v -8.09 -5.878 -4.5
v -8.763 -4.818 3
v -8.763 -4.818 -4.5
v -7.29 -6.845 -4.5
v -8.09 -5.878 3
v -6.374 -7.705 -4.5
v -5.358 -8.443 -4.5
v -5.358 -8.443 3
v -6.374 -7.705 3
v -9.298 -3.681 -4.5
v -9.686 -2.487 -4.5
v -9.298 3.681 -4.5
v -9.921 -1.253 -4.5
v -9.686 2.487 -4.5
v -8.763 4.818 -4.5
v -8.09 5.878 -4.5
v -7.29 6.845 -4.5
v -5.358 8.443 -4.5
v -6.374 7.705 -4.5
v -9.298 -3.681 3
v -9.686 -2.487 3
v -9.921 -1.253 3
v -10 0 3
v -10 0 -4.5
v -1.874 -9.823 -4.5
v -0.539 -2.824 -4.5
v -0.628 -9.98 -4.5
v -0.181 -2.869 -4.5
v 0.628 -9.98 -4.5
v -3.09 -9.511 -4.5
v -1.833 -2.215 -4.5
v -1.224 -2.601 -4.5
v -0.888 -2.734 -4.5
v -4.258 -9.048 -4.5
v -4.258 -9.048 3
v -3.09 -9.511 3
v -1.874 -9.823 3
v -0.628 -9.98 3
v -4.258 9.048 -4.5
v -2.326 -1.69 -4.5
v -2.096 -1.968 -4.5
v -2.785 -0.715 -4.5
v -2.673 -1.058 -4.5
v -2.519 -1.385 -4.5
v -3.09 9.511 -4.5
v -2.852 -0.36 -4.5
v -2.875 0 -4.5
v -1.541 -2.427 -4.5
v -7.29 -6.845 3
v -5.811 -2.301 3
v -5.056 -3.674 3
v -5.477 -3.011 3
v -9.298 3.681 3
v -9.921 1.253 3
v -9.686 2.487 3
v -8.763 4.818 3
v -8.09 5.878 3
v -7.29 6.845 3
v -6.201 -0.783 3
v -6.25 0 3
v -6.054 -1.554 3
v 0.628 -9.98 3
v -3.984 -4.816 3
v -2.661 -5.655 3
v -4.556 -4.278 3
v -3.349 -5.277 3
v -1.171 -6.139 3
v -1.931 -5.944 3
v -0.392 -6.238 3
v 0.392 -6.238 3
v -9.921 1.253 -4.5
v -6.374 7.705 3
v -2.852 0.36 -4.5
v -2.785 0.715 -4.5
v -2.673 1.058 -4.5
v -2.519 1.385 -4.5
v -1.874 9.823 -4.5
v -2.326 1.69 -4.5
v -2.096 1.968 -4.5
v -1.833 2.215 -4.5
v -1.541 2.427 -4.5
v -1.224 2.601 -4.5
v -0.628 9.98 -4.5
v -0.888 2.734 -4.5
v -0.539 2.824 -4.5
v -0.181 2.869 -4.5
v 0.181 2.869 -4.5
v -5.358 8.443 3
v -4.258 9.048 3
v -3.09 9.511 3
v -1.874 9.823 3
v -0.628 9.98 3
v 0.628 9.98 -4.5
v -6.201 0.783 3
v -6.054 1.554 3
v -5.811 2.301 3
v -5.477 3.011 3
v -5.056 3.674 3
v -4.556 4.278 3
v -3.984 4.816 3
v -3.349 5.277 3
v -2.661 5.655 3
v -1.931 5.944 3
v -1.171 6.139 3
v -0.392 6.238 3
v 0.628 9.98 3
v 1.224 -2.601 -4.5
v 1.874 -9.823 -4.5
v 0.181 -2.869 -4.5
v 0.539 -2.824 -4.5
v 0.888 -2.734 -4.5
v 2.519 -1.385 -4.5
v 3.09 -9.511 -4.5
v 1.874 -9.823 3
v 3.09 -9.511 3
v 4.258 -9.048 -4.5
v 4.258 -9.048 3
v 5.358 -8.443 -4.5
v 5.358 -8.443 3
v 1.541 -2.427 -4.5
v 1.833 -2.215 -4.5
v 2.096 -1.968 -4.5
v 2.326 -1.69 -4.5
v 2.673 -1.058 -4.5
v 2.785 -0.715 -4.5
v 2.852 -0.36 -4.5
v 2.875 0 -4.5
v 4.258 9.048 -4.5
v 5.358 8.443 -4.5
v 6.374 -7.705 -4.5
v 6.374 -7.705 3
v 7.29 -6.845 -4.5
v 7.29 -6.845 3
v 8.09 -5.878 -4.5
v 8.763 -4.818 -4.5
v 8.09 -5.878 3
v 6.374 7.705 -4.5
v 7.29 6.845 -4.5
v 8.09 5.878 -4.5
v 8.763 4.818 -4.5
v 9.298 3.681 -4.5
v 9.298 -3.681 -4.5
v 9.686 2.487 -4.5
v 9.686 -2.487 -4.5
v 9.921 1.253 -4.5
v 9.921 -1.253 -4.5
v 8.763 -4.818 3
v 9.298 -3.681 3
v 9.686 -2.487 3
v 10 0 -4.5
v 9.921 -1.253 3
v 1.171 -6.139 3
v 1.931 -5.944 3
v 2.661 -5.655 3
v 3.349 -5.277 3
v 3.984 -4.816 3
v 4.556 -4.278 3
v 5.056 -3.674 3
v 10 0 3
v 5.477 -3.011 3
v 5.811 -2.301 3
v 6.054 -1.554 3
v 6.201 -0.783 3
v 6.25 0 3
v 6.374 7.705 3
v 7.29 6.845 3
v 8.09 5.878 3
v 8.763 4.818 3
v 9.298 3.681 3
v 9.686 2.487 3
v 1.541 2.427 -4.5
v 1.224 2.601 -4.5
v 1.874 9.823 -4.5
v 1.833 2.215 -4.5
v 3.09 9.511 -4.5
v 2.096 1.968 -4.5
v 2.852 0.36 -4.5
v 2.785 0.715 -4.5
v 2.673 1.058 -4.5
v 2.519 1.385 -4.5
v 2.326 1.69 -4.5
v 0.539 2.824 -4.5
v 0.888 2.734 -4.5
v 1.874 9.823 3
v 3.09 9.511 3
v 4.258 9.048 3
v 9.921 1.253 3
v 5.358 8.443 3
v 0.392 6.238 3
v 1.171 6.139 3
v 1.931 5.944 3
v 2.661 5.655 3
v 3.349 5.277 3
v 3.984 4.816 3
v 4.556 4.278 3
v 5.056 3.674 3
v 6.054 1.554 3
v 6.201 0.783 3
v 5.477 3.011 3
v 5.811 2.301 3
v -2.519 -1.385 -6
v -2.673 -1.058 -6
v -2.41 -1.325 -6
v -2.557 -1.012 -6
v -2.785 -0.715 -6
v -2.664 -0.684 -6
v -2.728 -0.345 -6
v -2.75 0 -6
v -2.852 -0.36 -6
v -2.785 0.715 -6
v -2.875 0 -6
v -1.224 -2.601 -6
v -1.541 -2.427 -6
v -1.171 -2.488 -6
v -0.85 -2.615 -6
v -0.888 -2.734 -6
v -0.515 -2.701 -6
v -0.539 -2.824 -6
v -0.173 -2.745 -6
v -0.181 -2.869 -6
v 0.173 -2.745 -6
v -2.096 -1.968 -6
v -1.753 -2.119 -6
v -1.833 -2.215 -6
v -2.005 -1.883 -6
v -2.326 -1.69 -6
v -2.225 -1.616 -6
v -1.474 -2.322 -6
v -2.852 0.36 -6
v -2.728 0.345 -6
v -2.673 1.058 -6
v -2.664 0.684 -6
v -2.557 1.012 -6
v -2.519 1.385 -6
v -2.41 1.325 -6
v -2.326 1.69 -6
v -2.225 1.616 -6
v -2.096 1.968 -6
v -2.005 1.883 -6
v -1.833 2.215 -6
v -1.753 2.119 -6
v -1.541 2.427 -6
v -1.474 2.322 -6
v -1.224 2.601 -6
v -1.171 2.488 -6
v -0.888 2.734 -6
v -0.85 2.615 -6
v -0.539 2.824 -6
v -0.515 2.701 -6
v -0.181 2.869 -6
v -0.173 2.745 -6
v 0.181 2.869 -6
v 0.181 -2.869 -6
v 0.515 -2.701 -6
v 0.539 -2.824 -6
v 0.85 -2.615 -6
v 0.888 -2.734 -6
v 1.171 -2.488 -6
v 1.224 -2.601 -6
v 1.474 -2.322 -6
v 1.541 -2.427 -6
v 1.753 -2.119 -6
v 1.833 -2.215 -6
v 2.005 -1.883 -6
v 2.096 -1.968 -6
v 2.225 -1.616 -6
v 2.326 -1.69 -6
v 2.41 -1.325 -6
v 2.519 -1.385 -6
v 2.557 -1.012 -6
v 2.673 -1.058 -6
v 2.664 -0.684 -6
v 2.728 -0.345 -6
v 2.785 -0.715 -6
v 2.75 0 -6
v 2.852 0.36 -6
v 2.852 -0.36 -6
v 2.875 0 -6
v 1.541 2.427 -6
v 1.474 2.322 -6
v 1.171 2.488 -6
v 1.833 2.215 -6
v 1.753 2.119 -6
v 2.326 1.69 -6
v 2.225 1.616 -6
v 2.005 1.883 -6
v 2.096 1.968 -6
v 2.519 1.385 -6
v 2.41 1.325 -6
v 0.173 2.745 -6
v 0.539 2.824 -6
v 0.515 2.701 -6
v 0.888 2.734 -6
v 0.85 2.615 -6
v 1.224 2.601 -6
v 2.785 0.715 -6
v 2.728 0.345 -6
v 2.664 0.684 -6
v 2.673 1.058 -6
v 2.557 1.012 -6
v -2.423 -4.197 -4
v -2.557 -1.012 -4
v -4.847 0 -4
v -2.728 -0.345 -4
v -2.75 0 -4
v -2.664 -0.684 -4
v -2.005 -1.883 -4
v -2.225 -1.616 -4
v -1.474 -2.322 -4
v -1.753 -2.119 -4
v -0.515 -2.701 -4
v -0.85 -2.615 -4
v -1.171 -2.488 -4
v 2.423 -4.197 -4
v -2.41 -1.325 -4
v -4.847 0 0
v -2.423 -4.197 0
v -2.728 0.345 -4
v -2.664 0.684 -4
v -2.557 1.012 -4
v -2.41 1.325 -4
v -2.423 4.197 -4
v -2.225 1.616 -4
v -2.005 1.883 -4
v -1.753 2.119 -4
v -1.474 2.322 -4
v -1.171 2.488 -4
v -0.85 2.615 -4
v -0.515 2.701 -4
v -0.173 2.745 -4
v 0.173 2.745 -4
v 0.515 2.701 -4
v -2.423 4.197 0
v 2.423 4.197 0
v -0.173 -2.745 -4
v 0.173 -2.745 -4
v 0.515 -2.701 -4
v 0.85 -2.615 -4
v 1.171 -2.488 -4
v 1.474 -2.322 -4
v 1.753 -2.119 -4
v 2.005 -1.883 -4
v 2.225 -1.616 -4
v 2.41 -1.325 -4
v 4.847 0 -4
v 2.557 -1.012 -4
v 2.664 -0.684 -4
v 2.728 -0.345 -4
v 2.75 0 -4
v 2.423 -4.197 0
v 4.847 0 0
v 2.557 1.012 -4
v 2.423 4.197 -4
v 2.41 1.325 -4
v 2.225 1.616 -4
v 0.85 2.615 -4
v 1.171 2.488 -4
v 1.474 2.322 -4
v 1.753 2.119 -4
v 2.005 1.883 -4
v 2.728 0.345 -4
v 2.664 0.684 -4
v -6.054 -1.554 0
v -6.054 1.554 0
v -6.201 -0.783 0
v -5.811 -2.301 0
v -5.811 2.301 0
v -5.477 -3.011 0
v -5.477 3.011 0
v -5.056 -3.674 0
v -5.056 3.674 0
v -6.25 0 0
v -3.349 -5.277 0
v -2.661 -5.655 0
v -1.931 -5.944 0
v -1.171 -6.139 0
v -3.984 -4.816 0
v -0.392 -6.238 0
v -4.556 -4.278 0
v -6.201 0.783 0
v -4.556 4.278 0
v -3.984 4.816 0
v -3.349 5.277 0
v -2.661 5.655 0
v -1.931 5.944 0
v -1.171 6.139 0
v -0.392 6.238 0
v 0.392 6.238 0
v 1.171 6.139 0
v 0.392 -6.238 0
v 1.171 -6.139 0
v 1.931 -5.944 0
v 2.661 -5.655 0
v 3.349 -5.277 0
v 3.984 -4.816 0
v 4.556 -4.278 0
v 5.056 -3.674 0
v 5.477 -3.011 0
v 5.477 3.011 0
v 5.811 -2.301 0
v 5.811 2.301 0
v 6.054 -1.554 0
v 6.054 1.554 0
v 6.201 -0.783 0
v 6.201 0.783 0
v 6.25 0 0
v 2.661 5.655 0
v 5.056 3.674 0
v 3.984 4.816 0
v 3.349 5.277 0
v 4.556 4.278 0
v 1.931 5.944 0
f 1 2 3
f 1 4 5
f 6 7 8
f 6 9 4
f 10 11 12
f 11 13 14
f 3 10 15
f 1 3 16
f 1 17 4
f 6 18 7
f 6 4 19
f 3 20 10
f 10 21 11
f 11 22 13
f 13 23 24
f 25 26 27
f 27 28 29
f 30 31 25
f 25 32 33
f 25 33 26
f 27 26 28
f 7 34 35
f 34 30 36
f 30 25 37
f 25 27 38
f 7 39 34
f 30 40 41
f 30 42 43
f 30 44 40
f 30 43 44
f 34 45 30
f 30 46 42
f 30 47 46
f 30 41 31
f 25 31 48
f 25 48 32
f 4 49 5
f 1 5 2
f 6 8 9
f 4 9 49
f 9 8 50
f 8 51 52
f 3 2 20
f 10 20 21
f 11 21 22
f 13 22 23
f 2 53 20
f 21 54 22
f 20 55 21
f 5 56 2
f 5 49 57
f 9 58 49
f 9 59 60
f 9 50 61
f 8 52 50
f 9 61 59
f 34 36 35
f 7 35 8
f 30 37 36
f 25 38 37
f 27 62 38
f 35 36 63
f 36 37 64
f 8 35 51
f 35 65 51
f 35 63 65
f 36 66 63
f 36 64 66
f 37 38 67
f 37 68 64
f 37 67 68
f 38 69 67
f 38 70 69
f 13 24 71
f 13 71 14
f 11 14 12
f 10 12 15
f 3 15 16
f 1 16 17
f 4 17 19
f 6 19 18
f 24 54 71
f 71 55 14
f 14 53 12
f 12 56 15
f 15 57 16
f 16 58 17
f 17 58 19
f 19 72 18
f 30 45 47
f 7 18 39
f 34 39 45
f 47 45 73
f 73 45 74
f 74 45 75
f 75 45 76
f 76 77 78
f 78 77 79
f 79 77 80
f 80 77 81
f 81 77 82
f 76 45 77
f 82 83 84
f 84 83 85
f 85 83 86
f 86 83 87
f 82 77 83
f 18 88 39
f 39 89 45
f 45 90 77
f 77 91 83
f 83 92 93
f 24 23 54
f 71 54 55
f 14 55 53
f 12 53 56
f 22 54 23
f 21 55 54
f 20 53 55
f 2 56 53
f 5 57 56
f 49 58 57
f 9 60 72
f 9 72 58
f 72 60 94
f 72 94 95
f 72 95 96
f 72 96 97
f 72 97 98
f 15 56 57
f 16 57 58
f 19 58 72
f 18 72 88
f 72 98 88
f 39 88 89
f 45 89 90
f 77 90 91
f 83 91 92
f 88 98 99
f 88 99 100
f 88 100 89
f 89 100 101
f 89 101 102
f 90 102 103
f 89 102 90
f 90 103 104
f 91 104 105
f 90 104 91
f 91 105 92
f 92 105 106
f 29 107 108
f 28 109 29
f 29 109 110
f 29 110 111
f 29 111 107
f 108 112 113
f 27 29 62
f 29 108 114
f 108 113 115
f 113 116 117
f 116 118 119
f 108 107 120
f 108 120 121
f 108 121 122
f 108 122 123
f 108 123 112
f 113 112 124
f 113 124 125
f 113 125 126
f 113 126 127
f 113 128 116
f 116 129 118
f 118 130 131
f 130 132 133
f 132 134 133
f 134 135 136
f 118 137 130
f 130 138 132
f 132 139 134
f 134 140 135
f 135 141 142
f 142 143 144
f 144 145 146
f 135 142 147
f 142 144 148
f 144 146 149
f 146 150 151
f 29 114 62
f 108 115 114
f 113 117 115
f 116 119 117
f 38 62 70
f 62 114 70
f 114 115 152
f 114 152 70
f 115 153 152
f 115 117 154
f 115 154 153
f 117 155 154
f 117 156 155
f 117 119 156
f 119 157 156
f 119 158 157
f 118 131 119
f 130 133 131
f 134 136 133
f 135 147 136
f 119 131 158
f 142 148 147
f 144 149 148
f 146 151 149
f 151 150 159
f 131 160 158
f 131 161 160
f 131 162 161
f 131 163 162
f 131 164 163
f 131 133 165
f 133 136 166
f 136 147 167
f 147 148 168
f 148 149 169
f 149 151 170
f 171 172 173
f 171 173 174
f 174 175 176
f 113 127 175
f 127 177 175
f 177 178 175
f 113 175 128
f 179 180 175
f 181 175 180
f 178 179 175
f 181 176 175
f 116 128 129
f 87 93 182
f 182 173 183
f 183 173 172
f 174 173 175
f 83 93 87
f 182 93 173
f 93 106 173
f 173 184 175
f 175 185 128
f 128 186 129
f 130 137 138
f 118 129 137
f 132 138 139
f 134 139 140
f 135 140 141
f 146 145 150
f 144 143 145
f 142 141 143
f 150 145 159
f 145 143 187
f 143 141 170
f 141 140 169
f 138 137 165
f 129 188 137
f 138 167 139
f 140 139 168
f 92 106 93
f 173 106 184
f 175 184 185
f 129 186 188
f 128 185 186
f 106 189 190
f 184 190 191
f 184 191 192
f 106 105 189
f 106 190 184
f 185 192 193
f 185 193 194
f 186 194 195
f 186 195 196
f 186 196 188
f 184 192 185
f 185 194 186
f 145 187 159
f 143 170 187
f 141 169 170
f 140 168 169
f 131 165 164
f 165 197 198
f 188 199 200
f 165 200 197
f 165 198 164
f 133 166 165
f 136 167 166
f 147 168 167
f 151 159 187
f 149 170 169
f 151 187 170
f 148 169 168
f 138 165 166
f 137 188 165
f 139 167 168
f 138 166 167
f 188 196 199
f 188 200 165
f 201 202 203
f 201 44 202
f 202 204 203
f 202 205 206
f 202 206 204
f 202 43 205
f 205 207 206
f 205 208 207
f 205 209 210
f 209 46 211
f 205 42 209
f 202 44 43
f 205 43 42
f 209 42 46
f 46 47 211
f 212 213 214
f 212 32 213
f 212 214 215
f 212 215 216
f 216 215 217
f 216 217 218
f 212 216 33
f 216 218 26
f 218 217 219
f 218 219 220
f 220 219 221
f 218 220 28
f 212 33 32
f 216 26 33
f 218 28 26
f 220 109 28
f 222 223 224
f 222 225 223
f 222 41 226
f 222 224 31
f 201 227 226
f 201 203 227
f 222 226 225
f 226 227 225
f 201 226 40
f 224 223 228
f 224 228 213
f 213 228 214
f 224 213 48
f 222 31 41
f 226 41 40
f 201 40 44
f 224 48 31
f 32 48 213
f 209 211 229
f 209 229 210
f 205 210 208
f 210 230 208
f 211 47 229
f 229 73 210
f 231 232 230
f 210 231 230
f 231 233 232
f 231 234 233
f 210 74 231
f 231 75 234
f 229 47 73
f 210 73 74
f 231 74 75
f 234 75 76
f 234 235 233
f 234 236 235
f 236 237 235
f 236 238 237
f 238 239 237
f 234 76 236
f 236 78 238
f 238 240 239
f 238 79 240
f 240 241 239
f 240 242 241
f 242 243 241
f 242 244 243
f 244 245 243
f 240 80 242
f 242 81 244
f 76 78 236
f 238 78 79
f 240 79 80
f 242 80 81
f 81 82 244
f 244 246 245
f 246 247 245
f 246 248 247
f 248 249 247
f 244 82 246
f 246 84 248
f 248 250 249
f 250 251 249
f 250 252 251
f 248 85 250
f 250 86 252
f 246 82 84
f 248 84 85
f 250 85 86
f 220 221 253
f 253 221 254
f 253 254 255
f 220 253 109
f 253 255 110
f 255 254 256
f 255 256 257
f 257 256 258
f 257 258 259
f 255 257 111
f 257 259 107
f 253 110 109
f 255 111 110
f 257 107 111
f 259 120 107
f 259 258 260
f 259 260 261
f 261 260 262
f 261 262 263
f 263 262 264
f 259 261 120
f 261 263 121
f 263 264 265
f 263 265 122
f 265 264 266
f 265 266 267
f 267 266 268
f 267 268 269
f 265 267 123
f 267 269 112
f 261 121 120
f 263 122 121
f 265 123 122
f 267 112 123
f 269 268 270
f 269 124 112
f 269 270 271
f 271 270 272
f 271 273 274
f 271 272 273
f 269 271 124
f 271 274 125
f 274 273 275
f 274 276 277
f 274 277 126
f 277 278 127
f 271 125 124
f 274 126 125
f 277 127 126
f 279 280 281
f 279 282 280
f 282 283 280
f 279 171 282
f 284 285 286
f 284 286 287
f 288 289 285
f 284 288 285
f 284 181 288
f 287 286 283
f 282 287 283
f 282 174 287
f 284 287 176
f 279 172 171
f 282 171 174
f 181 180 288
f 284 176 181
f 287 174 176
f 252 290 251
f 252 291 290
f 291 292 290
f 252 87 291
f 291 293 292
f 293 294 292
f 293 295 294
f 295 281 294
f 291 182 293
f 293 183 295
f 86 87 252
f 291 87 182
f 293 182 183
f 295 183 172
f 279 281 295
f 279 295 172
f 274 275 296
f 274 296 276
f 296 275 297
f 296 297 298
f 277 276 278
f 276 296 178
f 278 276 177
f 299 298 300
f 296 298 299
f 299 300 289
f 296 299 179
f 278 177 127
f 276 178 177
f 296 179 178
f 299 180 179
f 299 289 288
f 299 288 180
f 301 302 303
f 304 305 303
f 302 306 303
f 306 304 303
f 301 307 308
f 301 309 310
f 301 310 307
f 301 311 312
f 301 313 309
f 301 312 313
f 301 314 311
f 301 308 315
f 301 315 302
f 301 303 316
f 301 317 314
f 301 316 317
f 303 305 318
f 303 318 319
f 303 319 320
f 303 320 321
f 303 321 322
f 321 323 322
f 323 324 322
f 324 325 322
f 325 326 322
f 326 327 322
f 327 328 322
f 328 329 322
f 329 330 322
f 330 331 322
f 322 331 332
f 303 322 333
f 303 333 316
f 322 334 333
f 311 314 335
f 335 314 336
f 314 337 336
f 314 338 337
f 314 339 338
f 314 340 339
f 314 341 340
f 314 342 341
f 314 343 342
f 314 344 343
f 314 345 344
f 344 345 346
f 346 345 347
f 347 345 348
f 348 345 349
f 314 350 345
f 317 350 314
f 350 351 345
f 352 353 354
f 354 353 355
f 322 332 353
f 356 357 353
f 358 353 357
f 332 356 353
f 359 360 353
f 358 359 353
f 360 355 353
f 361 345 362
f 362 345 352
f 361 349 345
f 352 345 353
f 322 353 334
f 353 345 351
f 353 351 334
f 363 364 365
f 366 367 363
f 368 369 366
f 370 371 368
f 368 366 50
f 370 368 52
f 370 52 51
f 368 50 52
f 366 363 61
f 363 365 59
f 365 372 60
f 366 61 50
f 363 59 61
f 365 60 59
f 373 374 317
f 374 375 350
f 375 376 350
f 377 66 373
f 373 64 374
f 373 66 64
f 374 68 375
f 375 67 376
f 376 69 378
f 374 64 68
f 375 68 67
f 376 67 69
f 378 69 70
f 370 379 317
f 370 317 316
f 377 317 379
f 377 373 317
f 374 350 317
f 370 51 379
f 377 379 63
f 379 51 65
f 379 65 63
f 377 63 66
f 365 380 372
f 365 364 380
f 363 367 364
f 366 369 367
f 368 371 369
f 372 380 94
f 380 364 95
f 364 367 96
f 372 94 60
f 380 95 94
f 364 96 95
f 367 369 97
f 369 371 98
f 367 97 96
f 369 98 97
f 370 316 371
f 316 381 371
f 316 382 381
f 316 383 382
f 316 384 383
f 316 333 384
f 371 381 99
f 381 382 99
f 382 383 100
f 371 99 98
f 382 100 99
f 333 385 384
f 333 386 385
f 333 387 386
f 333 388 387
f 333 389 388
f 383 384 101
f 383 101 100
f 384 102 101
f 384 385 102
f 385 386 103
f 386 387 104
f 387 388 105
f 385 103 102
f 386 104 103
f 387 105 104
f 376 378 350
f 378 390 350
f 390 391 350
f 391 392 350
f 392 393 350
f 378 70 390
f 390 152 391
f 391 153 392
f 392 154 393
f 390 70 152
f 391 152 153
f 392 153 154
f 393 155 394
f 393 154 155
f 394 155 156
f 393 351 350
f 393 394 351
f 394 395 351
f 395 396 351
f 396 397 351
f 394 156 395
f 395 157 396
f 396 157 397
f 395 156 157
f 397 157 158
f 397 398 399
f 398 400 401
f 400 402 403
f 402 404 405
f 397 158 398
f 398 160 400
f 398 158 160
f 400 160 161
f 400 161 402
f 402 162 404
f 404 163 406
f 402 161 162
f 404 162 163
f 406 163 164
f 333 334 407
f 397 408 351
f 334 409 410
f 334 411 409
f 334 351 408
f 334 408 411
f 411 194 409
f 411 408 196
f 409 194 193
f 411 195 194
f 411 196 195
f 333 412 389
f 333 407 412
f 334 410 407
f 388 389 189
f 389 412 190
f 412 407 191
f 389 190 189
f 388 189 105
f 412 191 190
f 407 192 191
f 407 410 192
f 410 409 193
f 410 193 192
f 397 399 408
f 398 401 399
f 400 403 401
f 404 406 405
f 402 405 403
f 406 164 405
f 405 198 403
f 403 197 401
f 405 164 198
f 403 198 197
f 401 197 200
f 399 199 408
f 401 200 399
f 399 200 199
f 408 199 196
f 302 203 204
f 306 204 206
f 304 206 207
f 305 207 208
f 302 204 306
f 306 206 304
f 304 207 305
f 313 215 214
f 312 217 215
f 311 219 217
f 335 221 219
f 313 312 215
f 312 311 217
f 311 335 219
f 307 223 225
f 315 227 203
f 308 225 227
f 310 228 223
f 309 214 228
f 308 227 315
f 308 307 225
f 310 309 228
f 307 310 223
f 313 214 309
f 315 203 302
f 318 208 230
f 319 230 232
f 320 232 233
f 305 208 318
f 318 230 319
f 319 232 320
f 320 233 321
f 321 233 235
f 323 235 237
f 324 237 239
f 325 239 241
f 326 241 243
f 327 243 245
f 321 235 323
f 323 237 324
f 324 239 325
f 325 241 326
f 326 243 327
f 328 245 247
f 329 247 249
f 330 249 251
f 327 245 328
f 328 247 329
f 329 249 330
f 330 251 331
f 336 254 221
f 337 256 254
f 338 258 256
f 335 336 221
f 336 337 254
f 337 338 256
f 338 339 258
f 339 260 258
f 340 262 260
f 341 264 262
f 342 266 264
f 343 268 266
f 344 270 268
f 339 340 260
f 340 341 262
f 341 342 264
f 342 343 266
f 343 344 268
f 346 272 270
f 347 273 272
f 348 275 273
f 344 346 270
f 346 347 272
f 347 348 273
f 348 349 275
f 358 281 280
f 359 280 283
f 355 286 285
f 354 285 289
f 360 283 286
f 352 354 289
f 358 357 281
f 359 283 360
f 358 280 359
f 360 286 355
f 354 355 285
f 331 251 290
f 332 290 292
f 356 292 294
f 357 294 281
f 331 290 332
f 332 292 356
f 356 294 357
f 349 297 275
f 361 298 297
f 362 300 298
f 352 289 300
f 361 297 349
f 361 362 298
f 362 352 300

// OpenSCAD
$fn = 50;


difference() {
	union() {
		translate(v = [0, 0, -4.5000000000]) {
			cylinder(h = 7.5000000000, r = 10.0000000000);
		}
		#translate(v = [0, 0, -6.0000000000]) {
			cylinder(h = 6, r = 2.8750000000);
		}
	}
	union() {
		translate(v = [0, 0, 0]) {
			rotate(a = [0, 0, 0]) {
				difference() {
					union() {
						translate(v = [0, 0, -4]) {
							linear_extrude(height = 4) {
								polygon(points = [[4.8468000000, 0.0000000000], [2.4234000000, 4.1974519271], [-2.4234000000, 4.1974519271], [-4.8468000000, 0.0000000000], [-2.4234000000, -4.1974519271], [2.4234000000, -4.1974519271]]);
							}
						}
					}
					union();
				}
			}
		}
		#cylinder(h = 3, r = 6.2500000000);
		#translate(v = [0, 0, -100.0000000000]) {
			cylinder(h = 200, r = 2.7500000000);
		}
	}
}
